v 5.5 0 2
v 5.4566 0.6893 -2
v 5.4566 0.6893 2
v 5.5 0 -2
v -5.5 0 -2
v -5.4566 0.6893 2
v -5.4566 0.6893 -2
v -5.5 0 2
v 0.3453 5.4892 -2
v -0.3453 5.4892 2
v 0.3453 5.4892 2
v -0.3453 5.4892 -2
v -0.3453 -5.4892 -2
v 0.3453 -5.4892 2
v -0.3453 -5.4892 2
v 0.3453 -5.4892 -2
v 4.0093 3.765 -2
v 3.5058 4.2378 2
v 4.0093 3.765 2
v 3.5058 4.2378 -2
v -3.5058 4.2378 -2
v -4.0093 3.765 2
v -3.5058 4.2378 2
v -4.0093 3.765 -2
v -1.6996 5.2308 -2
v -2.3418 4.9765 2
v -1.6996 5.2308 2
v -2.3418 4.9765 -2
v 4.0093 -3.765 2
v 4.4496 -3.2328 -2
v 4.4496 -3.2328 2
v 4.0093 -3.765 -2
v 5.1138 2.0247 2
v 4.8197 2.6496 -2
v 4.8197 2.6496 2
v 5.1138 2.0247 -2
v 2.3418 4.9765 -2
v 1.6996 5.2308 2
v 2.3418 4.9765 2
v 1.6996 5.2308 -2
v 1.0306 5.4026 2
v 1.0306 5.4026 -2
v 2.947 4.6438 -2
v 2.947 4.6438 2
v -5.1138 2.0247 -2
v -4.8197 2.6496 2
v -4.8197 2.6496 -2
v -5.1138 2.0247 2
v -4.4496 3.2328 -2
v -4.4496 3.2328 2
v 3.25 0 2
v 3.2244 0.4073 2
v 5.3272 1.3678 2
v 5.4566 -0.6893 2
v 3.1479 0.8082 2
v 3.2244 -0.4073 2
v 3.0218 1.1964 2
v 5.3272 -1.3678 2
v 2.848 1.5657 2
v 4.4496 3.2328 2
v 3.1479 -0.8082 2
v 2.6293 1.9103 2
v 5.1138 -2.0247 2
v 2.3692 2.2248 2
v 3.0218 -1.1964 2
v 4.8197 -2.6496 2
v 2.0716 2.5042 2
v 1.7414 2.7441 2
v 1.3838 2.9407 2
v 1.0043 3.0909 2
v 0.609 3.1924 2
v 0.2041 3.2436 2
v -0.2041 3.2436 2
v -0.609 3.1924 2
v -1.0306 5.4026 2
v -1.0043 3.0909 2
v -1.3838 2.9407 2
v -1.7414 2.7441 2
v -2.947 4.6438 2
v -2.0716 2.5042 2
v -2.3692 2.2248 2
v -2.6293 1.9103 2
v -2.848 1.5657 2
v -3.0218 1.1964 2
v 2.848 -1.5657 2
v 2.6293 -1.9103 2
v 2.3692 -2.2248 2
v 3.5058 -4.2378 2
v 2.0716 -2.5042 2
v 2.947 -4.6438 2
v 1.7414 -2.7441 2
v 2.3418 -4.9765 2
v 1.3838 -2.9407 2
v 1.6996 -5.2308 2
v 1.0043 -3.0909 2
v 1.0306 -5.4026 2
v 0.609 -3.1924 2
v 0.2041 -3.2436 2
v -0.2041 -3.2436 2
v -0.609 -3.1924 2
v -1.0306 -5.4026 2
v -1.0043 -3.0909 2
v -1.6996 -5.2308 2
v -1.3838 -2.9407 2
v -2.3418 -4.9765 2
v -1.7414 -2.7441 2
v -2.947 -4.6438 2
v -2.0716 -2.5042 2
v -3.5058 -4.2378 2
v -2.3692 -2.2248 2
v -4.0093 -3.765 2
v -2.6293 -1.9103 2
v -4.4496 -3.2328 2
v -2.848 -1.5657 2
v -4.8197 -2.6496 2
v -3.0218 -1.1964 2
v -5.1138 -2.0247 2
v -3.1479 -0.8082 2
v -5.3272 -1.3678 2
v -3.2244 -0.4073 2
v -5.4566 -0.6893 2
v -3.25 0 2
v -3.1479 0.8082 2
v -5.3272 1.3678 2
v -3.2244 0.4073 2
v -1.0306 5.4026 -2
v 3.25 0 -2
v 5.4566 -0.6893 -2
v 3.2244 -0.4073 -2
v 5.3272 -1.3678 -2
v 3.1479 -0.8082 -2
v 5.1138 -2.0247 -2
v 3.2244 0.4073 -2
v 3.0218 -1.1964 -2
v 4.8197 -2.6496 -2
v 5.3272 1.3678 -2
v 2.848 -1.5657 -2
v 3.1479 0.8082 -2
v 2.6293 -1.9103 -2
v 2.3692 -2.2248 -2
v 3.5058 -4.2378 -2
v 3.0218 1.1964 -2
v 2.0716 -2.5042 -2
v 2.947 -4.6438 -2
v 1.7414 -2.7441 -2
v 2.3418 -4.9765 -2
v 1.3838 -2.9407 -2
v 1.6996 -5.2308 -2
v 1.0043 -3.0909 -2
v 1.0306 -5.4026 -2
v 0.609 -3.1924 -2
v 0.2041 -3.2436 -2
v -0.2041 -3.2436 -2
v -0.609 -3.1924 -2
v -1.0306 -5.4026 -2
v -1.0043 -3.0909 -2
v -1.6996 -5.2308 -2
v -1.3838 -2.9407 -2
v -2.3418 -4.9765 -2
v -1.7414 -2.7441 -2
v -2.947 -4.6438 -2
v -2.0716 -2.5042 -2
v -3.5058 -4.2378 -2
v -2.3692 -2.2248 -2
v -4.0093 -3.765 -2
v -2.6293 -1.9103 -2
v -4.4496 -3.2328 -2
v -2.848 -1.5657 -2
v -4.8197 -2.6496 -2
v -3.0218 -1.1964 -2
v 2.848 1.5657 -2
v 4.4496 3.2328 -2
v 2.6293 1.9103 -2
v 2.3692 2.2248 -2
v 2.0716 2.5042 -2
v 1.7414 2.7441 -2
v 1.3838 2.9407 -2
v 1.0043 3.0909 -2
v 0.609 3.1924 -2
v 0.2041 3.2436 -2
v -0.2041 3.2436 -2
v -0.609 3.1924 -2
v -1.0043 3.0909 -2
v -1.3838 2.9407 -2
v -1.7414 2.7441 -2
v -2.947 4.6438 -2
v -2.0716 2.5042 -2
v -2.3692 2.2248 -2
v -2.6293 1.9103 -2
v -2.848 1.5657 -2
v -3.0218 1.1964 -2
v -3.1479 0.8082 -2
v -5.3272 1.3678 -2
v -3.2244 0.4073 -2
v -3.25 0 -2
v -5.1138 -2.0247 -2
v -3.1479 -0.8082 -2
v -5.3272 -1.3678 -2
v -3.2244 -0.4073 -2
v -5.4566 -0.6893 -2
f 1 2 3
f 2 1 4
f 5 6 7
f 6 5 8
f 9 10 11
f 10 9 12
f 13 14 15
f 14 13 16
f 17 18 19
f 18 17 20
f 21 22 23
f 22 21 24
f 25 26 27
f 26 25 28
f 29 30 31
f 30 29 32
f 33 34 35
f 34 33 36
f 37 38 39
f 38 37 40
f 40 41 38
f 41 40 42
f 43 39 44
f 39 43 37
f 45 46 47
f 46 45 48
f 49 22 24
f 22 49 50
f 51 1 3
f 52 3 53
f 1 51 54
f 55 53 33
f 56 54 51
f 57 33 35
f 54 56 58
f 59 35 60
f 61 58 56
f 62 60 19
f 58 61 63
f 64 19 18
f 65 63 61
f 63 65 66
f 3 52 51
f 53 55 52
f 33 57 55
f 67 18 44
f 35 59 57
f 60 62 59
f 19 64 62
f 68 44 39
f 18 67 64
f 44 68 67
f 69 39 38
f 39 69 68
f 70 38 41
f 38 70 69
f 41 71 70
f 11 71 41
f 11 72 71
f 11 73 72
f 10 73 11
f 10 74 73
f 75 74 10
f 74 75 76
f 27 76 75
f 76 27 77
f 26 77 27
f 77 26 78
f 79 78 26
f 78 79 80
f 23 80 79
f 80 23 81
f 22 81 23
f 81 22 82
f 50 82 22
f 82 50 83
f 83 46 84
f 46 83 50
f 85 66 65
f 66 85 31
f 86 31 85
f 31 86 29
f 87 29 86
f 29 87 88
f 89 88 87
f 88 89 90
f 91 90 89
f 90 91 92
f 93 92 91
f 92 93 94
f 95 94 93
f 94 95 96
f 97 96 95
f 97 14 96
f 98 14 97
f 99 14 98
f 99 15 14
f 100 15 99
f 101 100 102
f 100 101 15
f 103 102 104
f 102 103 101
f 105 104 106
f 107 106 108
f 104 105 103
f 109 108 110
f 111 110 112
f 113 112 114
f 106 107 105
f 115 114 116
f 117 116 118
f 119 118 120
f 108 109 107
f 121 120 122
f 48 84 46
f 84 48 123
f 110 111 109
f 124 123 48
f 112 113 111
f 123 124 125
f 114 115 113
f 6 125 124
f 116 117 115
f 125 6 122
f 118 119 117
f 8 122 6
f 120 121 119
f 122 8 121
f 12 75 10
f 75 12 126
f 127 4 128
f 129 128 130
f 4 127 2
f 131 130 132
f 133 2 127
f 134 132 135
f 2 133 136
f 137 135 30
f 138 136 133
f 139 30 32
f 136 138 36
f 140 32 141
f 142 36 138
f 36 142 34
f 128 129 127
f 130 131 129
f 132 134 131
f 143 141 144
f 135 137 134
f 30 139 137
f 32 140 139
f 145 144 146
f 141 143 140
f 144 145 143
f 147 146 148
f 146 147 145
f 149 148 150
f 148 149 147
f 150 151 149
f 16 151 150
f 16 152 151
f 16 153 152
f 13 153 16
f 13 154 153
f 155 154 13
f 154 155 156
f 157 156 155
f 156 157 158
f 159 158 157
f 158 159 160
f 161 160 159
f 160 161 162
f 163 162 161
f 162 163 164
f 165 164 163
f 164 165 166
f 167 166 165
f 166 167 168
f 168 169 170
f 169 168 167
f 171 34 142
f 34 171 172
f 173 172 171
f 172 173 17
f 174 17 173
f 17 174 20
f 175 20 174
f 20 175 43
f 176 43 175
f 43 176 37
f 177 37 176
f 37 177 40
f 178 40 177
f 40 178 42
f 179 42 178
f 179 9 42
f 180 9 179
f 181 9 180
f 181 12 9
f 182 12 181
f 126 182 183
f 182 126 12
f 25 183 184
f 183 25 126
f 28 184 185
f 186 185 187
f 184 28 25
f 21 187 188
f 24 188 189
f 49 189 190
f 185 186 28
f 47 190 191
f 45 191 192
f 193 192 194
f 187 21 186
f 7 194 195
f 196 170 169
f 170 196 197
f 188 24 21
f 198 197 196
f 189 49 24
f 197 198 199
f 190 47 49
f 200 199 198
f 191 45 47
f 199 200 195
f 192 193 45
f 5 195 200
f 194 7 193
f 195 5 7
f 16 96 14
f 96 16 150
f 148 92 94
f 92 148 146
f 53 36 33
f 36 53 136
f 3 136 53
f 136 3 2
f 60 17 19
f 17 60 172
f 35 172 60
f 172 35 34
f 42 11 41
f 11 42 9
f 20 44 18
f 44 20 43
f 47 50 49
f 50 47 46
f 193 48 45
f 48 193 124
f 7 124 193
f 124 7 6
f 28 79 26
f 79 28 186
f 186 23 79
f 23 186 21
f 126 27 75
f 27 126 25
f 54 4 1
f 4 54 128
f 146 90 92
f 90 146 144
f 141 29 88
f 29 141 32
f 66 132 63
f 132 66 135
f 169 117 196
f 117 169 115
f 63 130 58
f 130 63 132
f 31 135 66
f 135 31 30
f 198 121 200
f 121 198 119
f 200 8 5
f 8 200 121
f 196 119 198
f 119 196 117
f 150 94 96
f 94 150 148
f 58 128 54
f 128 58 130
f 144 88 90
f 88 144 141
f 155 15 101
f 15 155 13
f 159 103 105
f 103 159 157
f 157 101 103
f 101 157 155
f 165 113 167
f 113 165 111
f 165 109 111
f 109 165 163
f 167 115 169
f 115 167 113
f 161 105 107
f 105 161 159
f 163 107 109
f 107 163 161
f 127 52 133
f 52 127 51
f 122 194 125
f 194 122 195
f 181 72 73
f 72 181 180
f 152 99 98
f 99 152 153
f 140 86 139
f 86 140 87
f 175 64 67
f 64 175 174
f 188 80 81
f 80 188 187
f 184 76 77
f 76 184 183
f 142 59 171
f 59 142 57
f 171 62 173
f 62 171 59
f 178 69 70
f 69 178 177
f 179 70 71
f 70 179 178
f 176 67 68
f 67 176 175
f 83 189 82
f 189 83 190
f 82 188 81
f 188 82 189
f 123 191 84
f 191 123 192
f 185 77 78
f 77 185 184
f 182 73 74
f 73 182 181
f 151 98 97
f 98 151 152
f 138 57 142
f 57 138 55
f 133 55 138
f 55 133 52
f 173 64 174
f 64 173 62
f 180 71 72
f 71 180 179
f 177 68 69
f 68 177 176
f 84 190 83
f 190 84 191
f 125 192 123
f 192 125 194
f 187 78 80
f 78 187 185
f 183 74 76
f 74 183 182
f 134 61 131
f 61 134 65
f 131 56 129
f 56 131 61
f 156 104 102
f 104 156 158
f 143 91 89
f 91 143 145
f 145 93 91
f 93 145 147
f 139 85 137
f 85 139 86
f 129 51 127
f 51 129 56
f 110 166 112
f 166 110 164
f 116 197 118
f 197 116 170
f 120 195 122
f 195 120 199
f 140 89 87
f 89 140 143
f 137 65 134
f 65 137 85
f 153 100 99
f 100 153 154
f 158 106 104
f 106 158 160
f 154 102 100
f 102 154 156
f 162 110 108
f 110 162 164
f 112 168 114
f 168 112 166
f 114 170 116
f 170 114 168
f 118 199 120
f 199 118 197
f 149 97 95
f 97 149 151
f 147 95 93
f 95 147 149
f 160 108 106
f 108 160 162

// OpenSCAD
$fn = 50;


difference() {
	union() {
		translate(v = [0, 0, -2.0000000000]) {
			cylinder(h = 4, r = 5.5000000000);
		}
	}
	union() {
		translate(v = [0, 0, -100.0000000000]) {
			cylinder(h = 200, r = 3.2500000000);
		}
	}
}
